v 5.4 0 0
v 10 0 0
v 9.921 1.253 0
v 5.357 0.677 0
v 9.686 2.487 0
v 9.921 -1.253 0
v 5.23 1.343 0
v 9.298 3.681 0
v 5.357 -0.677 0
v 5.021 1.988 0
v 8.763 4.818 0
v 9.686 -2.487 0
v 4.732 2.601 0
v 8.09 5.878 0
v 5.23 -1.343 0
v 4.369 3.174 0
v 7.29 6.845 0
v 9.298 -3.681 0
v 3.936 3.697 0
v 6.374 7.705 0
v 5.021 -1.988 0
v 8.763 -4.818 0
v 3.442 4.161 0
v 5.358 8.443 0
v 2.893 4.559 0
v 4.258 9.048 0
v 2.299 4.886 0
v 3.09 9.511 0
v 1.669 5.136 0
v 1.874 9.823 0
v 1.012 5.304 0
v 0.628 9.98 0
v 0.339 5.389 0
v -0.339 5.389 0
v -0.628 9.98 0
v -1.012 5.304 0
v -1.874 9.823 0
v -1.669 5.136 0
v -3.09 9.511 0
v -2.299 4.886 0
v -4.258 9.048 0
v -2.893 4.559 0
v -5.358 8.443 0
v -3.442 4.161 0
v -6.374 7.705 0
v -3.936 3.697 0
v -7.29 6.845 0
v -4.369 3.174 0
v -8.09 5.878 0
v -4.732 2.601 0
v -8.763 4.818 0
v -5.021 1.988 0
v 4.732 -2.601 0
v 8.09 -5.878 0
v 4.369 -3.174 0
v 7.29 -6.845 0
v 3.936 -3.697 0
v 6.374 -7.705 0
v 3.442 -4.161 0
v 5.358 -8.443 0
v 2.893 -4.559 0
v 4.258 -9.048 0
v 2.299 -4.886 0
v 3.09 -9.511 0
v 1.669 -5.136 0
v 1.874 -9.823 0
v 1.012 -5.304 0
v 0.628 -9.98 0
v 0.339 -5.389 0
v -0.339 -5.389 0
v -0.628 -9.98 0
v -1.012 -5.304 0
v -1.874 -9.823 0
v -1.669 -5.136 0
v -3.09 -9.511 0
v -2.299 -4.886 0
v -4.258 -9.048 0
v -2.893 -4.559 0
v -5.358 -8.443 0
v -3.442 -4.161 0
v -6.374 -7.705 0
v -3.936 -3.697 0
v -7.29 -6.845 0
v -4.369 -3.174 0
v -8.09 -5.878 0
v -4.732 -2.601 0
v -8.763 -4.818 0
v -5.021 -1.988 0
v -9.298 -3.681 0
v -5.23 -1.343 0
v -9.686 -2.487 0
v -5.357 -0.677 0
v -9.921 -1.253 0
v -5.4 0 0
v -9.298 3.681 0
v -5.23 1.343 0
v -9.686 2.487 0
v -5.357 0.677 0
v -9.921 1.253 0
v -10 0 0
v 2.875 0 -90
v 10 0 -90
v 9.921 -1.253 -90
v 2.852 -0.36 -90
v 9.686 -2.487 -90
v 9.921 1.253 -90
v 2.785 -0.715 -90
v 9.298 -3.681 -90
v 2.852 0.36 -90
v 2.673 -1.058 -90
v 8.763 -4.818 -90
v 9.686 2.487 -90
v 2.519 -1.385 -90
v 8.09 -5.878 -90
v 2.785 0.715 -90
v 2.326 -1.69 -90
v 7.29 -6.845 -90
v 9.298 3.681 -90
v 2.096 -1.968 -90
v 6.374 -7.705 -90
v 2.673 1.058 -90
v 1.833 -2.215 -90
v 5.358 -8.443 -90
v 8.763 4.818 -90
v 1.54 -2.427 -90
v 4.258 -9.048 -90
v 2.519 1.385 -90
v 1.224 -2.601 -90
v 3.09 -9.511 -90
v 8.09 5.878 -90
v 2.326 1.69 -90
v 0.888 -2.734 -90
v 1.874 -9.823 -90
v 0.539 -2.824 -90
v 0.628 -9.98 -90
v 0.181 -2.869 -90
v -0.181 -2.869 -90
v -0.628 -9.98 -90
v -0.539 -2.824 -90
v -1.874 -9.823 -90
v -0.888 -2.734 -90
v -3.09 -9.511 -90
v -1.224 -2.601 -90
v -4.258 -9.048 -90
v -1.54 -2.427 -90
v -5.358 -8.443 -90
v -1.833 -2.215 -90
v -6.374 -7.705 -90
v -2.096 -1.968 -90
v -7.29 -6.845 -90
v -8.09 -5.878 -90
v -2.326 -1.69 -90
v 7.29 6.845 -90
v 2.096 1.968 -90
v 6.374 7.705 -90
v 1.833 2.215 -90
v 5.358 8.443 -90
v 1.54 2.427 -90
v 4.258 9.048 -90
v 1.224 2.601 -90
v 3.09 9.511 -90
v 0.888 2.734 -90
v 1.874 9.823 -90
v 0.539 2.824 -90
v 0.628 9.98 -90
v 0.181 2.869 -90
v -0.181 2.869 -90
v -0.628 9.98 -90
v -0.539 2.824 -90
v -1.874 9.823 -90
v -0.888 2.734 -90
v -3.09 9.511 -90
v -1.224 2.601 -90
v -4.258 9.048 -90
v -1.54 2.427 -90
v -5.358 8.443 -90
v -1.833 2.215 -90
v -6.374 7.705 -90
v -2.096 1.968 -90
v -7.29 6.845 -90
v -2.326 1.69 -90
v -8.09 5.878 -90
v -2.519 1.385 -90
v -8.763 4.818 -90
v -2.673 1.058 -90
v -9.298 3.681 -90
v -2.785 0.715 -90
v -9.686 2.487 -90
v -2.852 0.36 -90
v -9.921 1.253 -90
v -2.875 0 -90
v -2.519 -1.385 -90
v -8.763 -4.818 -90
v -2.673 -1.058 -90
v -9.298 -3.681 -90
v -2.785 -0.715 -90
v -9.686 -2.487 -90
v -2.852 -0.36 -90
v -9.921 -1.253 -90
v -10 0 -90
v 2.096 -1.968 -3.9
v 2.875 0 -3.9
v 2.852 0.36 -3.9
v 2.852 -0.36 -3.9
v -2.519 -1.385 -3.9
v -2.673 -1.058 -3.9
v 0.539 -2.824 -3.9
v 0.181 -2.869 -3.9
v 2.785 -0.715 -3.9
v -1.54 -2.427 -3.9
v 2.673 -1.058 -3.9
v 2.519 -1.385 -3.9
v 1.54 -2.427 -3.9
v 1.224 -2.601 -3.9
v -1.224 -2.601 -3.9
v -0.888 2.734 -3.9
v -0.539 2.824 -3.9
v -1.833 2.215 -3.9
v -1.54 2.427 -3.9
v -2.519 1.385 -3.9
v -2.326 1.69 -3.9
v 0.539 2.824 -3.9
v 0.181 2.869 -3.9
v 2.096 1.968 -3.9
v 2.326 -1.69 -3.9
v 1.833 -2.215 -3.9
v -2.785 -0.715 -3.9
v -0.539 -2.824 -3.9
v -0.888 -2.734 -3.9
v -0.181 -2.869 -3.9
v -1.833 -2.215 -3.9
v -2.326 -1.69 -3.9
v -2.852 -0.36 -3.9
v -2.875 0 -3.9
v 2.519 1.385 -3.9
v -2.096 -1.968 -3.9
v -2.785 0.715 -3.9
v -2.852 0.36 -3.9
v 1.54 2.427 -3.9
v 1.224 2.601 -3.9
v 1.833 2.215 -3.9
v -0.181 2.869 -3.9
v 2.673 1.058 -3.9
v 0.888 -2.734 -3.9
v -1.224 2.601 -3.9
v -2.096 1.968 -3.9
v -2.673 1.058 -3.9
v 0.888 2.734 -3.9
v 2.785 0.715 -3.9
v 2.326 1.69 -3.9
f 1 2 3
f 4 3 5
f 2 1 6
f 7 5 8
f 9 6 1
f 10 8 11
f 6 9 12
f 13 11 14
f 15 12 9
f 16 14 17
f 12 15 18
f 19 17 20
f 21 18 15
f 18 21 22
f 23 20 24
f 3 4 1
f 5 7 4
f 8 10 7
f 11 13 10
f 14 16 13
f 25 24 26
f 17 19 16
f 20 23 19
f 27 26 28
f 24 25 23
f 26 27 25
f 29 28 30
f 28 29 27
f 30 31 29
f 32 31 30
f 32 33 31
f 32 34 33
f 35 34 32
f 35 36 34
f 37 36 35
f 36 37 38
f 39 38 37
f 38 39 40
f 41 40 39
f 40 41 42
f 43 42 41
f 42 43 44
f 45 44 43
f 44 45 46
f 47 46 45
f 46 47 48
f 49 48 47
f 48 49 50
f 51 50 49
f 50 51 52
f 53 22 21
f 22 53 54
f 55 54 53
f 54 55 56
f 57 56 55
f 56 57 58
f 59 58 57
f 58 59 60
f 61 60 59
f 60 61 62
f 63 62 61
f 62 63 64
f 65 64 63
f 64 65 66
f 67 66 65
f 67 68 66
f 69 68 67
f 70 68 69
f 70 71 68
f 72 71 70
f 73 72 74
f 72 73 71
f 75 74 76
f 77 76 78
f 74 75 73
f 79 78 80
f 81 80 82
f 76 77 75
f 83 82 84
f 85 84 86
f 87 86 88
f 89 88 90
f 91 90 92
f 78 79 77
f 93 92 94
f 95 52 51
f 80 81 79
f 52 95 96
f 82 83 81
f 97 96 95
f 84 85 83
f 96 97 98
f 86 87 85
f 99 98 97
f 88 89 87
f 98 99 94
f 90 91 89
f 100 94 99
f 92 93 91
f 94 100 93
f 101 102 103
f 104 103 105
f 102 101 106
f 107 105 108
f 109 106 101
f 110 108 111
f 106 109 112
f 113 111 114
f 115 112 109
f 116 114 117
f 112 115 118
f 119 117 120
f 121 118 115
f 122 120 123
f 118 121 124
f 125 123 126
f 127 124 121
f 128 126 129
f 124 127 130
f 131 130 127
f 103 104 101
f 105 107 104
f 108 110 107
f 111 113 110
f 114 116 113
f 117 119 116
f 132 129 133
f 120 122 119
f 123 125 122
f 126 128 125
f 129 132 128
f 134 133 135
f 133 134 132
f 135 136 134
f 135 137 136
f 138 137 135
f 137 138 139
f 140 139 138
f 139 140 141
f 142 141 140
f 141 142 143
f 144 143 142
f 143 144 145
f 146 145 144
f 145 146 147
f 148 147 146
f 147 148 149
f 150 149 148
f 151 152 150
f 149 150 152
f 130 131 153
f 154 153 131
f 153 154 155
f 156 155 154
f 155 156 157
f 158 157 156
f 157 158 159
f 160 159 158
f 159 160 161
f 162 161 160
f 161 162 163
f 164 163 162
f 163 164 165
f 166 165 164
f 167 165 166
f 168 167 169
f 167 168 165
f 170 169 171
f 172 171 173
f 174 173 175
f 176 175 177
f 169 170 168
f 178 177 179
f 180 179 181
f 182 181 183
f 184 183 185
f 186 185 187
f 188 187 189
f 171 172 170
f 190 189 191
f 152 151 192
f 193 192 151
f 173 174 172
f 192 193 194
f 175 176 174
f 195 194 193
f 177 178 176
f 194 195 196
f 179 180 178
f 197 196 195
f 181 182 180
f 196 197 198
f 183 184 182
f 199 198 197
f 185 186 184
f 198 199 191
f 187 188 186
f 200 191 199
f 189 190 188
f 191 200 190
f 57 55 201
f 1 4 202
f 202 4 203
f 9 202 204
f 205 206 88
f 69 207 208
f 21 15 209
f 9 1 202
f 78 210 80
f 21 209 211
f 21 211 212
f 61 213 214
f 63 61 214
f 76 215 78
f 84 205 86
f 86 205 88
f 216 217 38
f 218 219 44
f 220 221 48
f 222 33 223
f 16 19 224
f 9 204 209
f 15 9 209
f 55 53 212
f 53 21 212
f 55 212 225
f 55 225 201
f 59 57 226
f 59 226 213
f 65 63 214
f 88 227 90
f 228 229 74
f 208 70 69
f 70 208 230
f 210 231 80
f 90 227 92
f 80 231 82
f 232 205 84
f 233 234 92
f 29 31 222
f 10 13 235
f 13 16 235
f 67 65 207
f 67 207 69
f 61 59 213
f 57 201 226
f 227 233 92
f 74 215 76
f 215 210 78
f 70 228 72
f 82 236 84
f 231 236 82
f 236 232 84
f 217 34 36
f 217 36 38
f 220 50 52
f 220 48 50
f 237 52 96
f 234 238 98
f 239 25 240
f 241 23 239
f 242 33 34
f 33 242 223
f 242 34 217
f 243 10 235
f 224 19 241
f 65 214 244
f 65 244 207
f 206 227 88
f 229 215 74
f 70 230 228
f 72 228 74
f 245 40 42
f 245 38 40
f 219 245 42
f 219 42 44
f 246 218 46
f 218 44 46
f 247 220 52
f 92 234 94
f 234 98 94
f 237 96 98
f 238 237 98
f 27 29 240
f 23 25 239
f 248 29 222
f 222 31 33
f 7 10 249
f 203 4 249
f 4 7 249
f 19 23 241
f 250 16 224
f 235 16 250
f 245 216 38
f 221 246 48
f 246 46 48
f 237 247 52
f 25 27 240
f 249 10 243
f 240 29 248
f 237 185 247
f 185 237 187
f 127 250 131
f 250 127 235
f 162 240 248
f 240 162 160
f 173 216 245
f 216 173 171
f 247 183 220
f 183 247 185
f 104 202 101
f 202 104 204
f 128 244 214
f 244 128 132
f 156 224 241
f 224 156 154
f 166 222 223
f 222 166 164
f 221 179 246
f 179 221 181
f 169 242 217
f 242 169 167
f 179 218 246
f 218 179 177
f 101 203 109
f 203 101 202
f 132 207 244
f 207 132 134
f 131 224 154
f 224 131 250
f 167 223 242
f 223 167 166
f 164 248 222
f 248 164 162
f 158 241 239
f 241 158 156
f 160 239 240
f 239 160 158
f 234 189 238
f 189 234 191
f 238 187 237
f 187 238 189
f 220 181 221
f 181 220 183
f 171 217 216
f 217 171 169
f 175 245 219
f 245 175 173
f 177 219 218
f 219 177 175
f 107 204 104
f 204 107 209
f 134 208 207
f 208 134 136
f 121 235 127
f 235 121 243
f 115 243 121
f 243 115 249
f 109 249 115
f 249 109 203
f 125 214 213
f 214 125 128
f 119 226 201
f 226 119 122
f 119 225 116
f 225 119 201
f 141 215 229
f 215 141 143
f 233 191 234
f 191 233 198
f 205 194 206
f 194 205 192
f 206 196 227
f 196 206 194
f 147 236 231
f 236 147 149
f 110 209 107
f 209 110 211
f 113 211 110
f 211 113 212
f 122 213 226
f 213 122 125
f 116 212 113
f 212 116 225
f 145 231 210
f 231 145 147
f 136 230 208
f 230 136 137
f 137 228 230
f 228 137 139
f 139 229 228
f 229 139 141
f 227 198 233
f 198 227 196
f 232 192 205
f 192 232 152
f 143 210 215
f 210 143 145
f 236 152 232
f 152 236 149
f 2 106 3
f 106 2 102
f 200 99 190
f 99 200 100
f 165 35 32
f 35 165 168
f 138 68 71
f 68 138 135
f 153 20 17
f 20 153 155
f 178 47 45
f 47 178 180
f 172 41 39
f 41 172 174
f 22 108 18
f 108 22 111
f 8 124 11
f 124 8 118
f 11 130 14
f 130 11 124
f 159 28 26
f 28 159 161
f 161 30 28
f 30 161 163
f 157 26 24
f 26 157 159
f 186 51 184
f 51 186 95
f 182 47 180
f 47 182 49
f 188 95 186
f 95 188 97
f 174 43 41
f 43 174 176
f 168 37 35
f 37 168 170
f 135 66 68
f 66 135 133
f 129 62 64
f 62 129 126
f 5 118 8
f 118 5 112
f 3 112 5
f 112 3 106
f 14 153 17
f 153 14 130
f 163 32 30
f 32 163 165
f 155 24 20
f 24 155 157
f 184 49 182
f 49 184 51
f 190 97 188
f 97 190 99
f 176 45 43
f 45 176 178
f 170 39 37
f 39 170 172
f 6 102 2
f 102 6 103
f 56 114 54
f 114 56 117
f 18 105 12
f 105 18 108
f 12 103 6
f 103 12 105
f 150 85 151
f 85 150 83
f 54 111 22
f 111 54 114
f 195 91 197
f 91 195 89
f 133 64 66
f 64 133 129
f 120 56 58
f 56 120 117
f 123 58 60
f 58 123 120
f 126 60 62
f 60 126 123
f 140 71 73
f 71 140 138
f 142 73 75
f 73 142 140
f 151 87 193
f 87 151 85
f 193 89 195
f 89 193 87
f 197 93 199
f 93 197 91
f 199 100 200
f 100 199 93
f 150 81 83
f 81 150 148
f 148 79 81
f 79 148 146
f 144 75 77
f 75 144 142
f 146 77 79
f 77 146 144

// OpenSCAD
$fn = 50;


difference() {
	union() {
		translate(v = [0, 0, -90.0000000000]) {
			cylinder(h = 90, r = 10.0000000000);
		}
		cylinder(h = 0, r = 13.0000000000);
	}
	union() {
		translate(v = [0, 0, 0]) {
			rotate(a = [0, 0, 0]) {
				difference() {
					union() {
						#translate(v = [0, 0, -90.0000000000]) {
							cylinder(h = 90, r = 2.6000000000);
						}
						#translate(v = [0, 0, -3.9000000000]) {
							cylinder(h = 3.9000000000, r = 10.0000000000, r1 = 2.8750000000, r2 = 5.4000000000);
						}
						#translate(v = [0, 0, -90.0000000000]) {
							cylinder(h = 90, r = 2.8750000000);
						}
						#translate(v = [0, 0, -90.0000000000]) {
							cylinder(h = 90, r = 2.6000000000);
						}
					}
					union();
				}
			}
		}
	}
}
